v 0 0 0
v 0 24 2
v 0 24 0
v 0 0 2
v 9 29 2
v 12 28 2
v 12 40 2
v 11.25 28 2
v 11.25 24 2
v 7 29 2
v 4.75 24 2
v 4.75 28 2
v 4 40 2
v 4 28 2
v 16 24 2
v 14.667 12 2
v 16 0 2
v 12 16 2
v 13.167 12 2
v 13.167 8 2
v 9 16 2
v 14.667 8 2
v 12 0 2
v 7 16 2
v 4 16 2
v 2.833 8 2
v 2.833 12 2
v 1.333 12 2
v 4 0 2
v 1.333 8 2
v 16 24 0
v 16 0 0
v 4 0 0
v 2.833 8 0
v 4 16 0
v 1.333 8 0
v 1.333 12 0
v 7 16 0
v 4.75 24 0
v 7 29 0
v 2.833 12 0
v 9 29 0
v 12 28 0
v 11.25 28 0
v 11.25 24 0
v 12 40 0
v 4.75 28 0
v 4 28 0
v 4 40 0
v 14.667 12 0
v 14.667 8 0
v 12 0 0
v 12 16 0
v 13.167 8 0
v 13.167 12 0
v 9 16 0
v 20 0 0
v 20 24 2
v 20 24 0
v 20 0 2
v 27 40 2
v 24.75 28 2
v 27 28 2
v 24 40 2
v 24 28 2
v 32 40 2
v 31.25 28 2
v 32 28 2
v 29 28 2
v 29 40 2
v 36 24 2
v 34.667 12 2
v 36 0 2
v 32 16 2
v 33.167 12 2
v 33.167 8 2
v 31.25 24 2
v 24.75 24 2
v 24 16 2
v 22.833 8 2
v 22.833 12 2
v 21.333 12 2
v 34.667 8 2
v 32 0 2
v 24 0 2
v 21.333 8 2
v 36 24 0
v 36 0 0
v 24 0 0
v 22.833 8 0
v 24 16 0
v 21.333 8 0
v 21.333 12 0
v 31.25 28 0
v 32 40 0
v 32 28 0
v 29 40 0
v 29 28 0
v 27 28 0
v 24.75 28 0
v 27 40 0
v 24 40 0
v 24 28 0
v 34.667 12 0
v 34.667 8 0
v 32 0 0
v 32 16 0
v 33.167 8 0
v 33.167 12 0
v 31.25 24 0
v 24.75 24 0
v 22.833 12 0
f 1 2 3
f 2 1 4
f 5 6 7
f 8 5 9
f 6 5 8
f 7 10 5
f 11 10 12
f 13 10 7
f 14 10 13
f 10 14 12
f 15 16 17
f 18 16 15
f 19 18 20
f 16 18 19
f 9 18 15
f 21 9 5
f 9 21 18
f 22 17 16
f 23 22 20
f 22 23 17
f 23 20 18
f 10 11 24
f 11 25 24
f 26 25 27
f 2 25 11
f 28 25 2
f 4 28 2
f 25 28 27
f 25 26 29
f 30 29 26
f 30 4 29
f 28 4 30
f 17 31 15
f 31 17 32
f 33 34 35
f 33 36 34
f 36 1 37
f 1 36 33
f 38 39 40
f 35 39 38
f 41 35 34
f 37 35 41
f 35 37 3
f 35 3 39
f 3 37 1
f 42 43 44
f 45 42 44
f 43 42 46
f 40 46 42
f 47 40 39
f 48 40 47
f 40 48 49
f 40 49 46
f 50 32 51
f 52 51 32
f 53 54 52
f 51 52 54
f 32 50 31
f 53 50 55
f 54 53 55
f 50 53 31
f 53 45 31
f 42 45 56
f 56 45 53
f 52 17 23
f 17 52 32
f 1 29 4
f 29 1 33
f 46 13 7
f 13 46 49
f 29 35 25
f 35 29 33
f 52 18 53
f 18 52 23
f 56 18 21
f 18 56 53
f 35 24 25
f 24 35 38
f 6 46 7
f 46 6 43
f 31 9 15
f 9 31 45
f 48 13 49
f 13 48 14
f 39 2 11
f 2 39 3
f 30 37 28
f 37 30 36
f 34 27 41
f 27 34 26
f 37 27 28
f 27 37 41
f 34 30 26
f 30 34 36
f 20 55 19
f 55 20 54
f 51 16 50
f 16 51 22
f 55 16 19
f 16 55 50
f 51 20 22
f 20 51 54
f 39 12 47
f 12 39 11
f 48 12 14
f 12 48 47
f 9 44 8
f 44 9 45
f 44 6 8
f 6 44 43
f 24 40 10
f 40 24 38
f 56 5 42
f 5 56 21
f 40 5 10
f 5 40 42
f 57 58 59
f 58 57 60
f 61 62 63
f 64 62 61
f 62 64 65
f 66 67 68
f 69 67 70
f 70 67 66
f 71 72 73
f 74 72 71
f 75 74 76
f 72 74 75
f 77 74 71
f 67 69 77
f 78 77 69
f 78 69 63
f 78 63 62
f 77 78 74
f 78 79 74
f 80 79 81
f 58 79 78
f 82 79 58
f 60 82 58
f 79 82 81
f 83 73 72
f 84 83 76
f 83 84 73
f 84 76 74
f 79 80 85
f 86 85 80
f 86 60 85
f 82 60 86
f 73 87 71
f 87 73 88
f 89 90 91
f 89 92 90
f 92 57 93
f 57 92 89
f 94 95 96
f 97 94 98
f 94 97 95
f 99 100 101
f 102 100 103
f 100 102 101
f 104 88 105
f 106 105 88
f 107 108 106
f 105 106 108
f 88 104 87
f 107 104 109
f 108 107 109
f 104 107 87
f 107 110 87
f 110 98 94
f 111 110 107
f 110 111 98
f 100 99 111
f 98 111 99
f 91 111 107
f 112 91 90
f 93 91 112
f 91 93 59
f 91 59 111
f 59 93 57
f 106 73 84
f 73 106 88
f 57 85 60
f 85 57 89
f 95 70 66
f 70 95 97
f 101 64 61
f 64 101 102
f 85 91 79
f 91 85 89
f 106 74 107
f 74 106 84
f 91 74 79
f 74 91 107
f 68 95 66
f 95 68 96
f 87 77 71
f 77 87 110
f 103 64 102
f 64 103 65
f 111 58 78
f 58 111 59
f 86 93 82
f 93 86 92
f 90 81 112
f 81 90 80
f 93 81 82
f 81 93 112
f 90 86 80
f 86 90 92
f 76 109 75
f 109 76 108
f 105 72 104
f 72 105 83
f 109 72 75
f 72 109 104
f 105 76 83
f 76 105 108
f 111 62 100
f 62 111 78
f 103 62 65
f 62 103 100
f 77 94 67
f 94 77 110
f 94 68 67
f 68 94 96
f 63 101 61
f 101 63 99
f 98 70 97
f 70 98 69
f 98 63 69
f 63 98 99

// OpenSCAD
screw=8;
screw_length=screw*2;
height=2;
length=screw*5;
width=screw*2;
zip_w=1.5;
zip_l=4;
fit_margin=1;

module piece(){
difference(){
    cube([width,length,height]);
    translate([width/2-screw/2,0,0])
    cube([screw,screw_length,height+1]);
    
    //screw cuts
    translate([width-screw/2,length-screw_length,0])
    cube([screw,screw_length,height+1]);
    translate([-screw/2,length-screw_length,0])
    cube([screw,screw_length,height+1]);
    
    //zip ties
    translate([screw/6,screw_length/2,0])
    cube([zip_w,zip_l,height+1]);
    translate([width-screw/6-zip_w,screw_length/2,0])
    cube([zip_w,zip_l,height+1]);
    // upper zip ties
    translate([screw/2-zip_w/2,length-screw_length,0])
    cube([zip_w,zip_l,height+1]);
    translate([screw*3/2-zip_w/2,length-screw_length,0])
    cube([zip_w,zip_l,height+1]);
}}

difference(){
piece();
translate([width/2-height/2,screw_length,0])
cube([height,(length-screw_length)/2+fit_margin,10]);
}

translate([20,0,0])

difference(){
piece();
translate([width/2-height/2,length-(length-screw_length)/2,0])
cube([height,(length-screw_length)/2,10]);
}
